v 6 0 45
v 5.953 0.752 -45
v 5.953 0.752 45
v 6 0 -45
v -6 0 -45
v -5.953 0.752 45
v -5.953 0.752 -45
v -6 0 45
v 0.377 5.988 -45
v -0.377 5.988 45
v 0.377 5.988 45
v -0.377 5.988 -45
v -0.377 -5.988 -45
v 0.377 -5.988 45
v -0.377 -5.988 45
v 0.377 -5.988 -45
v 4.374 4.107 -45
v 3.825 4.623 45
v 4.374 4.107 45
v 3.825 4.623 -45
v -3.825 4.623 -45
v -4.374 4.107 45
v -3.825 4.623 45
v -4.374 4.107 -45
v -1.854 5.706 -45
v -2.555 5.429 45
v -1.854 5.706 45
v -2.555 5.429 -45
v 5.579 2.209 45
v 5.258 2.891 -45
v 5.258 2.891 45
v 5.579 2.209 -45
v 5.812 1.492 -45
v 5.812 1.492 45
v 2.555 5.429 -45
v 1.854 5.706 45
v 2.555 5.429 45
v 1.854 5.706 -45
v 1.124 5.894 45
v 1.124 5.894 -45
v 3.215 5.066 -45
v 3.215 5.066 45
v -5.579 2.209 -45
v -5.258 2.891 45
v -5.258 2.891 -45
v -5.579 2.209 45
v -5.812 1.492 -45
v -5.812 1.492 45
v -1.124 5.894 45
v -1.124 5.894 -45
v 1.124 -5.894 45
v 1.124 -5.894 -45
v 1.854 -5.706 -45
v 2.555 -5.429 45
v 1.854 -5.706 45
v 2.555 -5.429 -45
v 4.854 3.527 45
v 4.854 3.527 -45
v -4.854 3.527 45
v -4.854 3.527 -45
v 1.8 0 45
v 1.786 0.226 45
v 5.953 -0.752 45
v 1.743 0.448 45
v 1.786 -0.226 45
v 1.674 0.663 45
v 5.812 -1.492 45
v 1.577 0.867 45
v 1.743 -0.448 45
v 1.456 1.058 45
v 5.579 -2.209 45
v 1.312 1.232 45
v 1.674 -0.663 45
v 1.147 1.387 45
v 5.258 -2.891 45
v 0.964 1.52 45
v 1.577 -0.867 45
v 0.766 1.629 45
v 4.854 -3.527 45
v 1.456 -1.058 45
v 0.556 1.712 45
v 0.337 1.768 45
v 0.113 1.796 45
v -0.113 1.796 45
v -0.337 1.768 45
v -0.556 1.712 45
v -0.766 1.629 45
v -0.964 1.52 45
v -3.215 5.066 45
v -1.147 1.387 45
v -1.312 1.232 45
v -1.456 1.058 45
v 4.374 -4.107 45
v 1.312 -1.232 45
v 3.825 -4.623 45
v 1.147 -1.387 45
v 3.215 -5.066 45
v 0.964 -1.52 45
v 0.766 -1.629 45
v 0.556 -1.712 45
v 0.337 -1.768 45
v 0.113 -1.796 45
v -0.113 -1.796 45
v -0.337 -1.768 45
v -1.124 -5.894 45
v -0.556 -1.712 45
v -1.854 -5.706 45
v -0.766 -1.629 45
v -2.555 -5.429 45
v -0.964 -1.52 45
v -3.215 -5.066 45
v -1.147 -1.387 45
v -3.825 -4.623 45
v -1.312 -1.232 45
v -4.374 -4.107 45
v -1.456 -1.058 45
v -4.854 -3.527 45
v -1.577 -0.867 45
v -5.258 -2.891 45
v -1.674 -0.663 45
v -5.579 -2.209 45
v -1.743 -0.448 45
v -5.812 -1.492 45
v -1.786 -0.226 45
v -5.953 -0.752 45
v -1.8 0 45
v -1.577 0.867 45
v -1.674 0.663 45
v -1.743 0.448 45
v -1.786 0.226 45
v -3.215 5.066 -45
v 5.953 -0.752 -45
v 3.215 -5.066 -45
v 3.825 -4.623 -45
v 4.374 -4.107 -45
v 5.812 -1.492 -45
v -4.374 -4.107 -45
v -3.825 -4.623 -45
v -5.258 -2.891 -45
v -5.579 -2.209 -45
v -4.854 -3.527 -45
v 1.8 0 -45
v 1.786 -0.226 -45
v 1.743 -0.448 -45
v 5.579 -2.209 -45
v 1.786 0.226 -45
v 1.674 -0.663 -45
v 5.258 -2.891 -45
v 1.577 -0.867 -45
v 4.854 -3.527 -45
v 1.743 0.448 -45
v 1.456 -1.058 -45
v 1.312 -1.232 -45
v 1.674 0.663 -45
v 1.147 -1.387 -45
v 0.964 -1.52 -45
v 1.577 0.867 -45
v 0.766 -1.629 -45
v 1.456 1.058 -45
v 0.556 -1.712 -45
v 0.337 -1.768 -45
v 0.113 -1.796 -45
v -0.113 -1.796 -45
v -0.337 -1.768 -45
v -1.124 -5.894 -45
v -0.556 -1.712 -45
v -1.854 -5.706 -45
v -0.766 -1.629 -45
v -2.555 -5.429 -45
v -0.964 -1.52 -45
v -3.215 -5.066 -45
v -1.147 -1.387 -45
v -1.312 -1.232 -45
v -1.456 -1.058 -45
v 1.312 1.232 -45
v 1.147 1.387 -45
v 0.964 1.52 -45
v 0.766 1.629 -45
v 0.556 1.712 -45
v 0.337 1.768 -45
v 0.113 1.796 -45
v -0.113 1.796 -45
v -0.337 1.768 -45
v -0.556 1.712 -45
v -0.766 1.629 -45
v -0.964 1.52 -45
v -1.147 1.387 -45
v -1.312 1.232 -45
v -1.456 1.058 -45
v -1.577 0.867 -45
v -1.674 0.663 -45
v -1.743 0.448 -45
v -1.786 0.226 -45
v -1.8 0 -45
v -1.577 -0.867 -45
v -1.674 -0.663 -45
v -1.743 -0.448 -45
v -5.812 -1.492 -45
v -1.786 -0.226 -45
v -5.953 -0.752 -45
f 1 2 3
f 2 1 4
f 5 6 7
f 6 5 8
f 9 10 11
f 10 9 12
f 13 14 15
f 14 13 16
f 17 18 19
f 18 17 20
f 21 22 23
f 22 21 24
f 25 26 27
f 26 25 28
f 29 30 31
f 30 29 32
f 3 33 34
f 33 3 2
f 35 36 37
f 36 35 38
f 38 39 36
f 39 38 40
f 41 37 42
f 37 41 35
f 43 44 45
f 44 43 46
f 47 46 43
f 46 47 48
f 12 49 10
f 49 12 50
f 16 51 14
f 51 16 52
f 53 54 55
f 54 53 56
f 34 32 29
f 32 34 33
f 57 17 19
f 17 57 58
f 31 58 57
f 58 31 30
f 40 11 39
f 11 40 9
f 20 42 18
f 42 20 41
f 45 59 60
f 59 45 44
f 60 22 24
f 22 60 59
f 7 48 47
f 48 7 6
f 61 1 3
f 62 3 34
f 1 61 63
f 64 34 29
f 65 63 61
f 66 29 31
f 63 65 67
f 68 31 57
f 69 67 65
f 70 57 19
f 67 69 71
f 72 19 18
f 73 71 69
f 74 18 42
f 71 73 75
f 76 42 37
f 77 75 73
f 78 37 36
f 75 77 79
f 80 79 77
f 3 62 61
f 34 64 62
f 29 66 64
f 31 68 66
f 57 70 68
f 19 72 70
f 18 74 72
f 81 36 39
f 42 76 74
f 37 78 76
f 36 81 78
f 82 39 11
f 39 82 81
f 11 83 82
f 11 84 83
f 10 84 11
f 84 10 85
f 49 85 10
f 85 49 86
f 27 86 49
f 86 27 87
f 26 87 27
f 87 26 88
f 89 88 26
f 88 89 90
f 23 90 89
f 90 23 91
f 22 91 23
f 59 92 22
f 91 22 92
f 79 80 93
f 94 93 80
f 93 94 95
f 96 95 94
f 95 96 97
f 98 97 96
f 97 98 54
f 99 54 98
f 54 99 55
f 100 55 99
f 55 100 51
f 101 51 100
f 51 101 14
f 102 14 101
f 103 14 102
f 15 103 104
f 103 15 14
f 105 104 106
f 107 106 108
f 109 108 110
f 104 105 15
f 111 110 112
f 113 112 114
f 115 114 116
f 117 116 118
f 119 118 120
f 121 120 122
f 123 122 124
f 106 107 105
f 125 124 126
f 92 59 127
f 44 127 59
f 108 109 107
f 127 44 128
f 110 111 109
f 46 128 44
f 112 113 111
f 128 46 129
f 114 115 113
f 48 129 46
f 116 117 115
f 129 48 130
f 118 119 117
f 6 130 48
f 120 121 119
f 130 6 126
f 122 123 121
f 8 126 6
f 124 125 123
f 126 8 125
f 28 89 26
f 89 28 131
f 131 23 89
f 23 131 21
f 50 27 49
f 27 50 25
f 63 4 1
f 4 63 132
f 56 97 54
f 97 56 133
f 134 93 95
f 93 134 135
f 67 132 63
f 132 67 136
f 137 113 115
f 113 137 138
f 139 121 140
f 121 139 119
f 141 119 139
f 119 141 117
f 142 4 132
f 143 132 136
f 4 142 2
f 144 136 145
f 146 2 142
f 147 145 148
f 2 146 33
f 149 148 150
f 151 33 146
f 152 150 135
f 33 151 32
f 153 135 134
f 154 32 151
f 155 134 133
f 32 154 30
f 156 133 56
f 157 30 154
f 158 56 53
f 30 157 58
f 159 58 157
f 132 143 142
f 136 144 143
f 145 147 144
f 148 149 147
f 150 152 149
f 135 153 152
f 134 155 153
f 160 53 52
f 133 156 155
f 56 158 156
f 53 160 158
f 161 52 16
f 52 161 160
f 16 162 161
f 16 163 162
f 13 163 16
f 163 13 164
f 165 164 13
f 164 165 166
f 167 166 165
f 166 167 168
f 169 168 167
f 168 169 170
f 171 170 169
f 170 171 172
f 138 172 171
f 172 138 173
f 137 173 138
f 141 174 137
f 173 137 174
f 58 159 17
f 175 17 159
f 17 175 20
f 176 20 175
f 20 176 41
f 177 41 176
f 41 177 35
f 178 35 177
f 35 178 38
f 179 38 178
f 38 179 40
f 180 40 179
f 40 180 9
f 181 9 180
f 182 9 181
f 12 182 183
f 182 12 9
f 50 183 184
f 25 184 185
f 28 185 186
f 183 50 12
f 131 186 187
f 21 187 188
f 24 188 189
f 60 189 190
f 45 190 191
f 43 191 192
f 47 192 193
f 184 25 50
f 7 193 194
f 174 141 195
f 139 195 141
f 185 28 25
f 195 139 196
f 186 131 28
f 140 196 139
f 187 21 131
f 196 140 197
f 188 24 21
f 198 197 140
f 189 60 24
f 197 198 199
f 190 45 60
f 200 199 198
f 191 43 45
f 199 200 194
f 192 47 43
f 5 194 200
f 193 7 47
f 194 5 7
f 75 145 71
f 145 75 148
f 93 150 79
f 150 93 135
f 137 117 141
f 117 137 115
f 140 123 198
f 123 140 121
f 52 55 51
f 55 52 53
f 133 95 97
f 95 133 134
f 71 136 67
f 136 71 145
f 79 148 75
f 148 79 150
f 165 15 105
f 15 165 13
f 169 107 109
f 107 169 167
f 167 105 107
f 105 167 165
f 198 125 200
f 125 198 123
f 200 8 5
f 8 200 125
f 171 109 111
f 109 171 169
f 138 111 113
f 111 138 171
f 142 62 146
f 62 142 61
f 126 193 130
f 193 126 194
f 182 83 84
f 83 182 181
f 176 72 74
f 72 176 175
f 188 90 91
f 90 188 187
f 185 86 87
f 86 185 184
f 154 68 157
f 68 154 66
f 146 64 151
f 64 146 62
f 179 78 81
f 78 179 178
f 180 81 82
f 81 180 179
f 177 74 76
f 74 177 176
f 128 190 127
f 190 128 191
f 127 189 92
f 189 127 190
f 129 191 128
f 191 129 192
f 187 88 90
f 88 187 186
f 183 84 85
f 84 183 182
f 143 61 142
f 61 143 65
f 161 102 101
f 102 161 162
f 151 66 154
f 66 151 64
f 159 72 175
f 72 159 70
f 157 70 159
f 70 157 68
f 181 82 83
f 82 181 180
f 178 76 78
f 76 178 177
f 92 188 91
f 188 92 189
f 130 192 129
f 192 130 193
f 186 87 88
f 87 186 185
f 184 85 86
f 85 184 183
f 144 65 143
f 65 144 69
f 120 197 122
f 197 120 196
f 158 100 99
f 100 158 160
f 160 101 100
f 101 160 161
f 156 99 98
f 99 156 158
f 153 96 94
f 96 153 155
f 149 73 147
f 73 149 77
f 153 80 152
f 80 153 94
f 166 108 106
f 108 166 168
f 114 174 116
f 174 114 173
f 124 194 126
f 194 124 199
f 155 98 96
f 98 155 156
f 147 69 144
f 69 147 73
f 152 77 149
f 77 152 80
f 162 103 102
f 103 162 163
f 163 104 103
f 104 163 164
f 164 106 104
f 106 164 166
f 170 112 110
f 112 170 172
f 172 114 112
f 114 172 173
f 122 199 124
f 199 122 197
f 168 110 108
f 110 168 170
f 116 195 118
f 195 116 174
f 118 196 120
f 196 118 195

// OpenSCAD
$fn = 50;


difference() {
	union() {
		translate(v = [0, 0, -45.0000000000]) {
			cylinder(h = 90, r = 6.0000000000);
		}
	}
	union() {
		translate(v = [0, 0, -100.0000000000]) {
			cylinder(h = 200, r = 1.8000000000);
		}
	}
}
